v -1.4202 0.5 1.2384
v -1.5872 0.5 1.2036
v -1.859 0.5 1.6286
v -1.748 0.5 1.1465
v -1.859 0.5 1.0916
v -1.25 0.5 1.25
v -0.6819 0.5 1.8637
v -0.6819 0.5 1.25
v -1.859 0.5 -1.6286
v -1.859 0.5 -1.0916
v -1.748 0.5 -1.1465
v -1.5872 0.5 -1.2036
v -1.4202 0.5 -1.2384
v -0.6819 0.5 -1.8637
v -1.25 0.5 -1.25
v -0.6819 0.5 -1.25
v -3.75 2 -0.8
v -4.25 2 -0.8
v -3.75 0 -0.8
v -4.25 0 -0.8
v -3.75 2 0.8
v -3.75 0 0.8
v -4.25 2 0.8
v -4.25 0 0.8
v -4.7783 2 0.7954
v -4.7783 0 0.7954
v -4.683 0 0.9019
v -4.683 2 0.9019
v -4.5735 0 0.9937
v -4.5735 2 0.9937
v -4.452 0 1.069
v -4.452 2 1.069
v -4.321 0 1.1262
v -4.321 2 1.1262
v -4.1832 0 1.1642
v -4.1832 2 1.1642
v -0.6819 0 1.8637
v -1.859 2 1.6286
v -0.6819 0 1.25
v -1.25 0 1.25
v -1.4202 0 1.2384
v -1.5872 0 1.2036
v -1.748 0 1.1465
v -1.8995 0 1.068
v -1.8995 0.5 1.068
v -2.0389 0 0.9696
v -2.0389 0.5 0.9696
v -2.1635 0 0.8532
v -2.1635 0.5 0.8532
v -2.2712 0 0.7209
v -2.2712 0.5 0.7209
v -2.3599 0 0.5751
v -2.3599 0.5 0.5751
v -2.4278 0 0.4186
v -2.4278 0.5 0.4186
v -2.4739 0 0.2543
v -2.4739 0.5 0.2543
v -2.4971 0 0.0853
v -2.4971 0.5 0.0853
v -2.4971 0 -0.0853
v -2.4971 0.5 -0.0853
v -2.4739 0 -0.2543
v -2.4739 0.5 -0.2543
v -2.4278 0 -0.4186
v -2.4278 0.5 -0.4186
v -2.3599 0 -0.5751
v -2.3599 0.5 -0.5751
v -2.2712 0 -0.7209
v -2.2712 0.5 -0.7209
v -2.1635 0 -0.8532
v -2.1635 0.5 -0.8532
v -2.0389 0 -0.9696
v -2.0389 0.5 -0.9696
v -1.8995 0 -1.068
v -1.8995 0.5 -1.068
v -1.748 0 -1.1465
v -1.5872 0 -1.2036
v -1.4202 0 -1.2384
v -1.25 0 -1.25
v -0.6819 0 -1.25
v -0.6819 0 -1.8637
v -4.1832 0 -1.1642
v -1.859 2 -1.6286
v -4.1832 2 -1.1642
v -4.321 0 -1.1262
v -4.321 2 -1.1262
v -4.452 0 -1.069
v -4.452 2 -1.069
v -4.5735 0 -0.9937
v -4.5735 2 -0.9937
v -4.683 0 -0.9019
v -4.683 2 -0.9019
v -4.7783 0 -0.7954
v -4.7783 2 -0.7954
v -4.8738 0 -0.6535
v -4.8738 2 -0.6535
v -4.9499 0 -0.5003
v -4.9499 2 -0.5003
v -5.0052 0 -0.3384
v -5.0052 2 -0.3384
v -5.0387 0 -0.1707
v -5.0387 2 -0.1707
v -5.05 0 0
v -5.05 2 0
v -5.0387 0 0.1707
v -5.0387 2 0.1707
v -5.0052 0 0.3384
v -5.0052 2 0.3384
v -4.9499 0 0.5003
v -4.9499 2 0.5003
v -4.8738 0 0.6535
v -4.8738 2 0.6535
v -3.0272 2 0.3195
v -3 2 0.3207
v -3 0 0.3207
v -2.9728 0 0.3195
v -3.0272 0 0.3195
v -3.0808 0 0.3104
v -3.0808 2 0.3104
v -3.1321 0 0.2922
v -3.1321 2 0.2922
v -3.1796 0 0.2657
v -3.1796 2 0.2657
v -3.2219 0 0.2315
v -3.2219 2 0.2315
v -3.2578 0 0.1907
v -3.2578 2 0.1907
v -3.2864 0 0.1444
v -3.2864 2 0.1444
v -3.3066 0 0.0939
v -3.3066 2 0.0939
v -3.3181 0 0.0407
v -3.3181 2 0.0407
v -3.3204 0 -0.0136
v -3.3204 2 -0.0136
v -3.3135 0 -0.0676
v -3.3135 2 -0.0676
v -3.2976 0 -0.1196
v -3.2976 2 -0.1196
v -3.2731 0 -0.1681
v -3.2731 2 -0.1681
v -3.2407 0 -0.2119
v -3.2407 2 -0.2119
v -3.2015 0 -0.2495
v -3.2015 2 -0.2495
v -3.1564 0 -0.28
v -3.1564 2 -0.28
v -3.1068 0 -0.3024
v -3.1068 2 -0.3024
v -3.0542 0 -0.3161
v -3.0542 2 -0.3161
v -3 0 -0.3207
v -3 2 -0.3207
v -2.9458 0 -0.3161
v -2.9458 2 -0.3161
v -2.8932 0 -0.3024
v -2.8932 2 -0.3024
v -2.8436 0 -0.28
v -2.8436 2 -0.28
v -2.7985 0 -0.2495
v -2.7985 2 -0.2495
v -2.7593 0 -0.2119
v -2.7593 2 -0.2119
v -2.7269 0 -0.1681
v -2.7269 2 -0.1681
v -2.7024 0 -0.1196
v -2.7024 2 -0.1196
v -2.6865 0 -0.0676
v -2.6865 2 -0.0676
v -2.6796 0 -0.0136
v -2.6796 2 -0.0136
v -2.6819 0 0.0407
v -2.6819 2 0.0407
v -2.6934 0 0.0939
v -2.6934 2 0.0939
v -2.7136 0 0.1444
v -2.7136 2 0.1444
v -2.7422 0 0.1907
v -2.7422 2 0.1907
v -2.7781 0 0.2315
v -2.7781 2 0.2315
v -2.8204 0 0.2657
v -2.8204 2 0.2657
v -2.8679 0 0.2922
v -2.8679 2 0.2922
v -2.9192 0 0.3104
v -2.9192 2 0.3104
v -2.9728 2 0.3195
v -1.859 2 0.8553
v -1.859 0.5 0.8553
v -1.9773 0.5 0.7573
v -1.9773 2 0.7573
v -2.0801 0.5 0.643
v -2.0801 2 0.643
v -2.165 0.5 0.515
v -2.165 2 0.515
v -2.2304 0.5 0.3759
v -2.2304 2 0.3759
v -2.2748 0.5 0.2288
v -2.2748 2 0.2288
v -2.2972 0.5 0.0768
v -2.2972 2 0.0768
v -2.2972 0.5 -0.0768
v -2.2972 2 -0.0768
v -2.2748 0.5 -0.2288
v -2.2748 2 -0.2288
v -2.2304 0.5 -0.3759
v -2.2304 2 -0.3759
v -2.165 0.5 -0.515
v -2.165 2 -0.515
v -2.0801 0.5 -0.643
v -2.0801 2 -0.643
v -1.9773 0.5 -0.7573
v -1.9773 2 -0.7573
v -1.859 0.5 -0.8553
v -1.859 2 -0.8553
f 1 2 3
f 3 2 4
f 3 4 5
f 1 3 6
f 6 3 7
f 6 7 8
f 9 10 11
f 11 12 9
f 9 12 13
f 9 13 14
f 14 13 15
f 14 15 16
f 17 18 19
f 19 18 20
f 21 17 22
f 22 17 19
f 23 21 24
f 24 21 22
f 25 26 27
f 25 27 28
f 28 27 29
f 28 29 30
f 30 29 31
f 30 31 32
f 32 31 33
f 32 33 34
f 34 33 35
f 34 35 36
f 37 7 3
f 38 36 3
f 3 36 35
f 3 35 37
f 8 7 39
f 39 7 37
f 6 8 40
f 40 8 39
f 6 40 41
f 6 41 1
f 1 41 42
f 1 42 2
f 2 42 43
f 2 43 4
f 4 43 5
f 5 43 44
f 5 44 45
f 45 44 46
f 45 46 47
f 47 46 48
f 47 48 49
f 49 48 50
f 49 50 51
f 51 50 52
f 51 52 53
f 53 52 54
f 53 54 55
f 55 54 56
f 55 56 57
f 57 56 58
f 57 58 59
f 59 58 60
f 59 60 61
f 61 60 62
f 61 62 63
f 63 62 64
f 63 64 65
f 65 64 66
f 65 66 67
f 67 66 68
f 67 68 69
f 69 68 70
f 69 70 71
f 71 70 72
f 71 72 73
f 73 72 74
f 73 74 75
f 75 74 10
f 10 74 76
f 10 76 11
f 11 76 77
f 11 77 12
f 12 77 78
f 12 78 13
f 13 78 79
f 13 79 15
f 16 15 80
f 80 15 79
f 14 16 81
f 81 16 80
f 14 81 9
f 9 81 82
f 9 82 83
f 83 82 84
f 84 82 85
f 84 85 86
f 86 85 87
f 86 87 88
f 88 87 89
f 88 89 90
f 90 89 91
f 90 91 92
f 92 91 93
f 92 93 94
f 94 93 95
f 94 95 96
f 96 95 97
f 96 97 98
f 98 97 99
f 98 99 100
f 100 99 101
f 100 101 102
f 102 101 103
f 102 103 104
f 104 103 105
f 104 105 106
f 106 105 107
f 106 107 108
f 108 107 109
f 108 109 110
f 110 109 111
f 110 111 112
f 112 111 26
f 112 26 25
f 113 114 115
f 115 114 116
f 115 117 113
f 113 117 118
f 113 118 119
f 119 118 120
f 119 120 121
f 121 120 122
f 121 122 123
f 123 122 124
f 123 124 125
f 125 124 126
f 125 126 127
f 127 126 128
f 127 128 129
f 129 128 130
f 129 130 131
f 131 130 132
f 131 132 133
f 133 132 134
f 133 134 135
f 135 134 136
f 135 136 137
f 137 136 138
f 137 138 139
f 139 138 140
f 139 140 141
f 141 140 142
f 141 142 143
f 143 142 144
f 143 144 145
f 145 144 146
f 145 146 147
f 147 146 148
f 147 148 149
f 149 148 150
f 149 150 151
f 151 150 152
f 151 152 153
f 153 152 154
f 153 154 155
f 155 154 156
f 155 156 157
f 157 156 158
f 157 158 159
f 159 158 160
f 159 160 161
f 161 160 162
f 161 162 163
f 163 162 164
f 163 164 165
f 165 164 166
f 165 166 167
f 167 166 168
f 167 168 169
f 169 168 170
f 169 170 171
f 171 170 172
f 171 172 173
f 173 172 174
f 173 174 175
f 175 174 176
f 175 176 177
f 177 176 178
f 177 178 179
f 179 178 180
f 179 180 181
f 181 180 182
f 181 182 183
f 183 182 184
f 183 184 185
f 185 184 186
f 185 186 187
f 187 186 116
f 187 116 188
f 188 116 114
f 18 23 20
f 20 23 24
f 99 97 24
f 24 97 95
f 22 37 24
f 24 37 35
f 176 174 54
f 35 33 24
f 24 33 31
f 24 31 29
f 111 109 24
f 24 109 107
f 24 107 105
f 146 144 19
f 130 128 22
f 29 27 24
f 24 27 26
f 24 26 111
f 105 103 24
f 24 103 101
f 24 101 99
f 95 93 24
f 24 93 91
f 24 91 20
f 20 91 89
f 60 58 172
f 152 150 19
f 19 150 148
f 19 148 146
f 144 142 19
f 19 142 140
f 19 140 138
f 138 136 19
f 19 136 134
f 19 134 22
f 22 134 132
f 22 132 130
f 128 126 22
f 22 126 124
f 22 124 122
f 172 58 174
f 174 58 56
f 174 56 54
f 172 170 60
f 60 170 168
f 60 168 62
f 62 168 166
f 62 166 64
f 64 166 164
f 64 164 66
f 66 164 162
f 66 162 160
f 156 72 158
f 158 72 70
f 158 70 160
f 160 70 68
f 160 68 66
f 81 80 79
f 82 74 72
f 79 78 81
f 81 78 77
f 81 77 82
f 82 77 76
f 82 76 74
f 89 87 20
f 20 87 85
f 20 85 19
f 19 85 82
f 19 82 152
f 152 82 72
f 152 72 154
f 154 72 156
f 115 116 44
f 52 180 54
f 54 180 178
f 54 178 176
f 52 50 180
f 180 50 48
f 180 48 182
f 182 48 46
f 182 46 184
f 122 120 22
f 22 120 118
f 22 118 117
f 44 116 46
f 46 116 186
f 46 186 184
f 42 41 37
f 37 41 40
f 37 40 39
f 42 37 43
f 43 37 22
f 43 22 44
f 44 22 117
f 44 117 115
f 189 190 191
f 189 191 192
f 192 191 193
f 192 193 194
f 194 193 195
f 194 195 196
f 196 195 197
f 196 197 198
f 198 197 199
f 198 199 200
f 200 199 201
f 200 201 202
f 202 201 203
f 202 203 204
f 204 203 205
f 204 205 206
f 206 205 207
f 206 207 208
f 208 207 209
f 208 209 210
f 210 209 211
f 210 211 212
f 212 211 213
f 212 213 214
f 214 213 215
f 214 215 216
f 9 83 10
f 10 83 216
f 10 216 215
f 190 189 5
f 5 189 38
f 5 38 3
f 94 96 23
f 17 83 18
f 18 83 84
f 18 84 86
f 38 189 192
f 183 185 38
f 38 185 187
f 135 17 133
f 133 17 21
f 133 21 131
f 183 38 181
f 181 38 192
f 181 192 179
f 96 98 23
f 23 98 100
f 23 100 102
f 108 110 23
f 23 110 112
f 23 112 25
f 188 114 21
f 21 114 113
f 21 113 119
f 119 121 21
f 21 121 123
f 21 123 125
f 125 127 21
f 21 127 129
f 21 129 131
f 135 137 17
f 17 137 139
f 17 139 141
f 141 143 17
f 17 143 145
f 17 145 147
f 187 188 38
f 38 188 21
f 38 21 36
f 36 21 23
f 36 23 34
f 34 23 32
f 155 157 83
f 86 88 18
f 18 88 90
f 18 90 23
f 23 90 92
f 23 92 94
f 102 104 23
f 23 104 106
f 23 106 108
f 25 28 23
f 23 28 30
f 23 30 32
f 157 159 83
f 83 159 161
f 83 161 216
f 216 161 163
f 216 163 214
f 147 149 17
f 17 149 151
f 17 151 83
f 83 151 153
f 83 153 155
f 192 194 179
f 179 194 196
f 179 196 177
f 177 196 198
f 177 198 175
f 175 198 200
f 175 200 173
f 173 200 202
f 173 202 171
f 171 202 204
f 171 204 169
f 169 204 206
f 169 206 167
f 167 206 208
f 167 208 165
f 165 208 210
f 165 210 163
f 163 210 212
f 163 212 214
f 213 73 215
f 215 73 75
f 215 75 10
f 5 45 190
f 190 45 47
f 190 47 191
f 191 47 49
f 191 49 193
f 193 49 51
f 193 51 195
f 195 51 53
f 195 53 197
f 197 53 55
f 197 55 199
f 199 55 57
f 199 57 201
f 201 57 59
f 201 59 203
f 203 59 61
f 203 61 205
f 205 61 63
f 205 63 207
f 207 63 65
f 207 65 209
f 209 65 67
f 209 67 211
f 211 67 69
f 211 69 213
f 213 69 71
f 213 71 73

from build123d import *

# Parameters (mm, degrees)
SKETCH1_R           = 0.3207
SKETCH1_W           = 0.5
SKETCH1_H           = 1.6
BOSS_EXTRUDE2_DEPTH = 0.5
BOSS_EXTRUDE3_START = 0.5
SKETCH1_28_W        = 0.5
SKETCH1_28_H        = 1.6
SKETCH1_28_R        = 0.3207
BOSS_EXTRUDE3_DEPTH = 1.5


with BuildPart() as part:
    # Sketch1 → Boss-Extrude2 (new body)
    with BuildSketch(Plane(origin=(0, 0, 0), x_dir=(1, 0, 0), z_dir=(0, 1, 0))):
        with BuildLine():
            Line((-0.68194188, 1.25), (-0.68194188, 1.863743198))
            Line((-0.68194188, 1.863743198), (-4.183235691, 1.164159972))
            ThreePointArc((-4.183235691, 1.164159972), (-4.514100233, 1.033532974), (-4.778306422, 0.795352691))
            ThreePointArc((-4.778306422, 0.795352691), (-5.05, -2e-09), (-4.778306419, -0.795352694))
            ThreePointArc((-4.778306419, -0.795352694), (-4.514100231, -1.033532975), (-4.183235691, -1.164159973))
            Line((-4.183235691, -1.164159973), (-0.68194188, -1.863743197))
            Line((-0.68194188, -1.863743197), (-0.68194188, -1.25))
            Line((-0.68194188, -1.25), (-1.25, -1.25))
            ThreePointArc((-1.25, -1.25), (-2.5, 0), (-1.25, 1.25))
            Line((-1.25, 1.25), (-0.68194188, 1.25))
        make_face()
        with Locations((-3, 0)):
            Circle(SKETCH1_R, mode=Mode.SUBTRACT)
        with Locations((-4, 0)):
            Rectangle(SKETCH1_W, SKETCH1_H, mode=Mode.SUBTRACT)
    extrude(amount=BOSS_EXTRUDE2_DEPTH)

    # Sketch1<28> → Boss-Extrude3 (add)
    with BuildSketch(Plane(origin=(0, 0, 0), x_dir=(1, 0, 0), z_dir=(0, 1, 0)).offset(BOSS_EXTRUDE3_START)):
        with BuildLine():
            Line((-1.85903885, 1.628550912), (-4.183235691, 1.164159972))
            ThreePointArc((-4.183235691, 1.164159972), (-4.514100233, 1.033532974), (-4.778306422, 0.795352691))
            ThreePointArc((-4.778306422, 0.795352691), (-5.05, -2e-09), (-4.778306419, -0.795352694))
            ThreePointArc((-4.778306419, -0.795352694), (-4.514100231, -1.033532975), (-4.183235691, -1.164159973))
            Line((-4.183235691, -1.164159973), (-1.85903885, -1.628550912))
            Line((-1.85903885, -1.628550912), (-1.85903885, -0.855319636))
            ThreePointArc((-1.85903885, -0.855319636), (-2.3, 0), (-1.85903885, 0.855319636))
            Line((-1.85903885, 0.855319636), (-1.85903885, 1.628550912))
        make_face()
        with Locations((-4, 0)):
            Rectangle(SKETCH1_28_W, SKETCH1_28_H, mode=Mode.SUBTRACT)
        with Locations((-3, 0)):
            Circle(SKETCH1_28_R, mode=Mode.SUBTRACT)
    extrude(amount=BOSS_EXTRUDE3_DEPTH)


solid = part.part
